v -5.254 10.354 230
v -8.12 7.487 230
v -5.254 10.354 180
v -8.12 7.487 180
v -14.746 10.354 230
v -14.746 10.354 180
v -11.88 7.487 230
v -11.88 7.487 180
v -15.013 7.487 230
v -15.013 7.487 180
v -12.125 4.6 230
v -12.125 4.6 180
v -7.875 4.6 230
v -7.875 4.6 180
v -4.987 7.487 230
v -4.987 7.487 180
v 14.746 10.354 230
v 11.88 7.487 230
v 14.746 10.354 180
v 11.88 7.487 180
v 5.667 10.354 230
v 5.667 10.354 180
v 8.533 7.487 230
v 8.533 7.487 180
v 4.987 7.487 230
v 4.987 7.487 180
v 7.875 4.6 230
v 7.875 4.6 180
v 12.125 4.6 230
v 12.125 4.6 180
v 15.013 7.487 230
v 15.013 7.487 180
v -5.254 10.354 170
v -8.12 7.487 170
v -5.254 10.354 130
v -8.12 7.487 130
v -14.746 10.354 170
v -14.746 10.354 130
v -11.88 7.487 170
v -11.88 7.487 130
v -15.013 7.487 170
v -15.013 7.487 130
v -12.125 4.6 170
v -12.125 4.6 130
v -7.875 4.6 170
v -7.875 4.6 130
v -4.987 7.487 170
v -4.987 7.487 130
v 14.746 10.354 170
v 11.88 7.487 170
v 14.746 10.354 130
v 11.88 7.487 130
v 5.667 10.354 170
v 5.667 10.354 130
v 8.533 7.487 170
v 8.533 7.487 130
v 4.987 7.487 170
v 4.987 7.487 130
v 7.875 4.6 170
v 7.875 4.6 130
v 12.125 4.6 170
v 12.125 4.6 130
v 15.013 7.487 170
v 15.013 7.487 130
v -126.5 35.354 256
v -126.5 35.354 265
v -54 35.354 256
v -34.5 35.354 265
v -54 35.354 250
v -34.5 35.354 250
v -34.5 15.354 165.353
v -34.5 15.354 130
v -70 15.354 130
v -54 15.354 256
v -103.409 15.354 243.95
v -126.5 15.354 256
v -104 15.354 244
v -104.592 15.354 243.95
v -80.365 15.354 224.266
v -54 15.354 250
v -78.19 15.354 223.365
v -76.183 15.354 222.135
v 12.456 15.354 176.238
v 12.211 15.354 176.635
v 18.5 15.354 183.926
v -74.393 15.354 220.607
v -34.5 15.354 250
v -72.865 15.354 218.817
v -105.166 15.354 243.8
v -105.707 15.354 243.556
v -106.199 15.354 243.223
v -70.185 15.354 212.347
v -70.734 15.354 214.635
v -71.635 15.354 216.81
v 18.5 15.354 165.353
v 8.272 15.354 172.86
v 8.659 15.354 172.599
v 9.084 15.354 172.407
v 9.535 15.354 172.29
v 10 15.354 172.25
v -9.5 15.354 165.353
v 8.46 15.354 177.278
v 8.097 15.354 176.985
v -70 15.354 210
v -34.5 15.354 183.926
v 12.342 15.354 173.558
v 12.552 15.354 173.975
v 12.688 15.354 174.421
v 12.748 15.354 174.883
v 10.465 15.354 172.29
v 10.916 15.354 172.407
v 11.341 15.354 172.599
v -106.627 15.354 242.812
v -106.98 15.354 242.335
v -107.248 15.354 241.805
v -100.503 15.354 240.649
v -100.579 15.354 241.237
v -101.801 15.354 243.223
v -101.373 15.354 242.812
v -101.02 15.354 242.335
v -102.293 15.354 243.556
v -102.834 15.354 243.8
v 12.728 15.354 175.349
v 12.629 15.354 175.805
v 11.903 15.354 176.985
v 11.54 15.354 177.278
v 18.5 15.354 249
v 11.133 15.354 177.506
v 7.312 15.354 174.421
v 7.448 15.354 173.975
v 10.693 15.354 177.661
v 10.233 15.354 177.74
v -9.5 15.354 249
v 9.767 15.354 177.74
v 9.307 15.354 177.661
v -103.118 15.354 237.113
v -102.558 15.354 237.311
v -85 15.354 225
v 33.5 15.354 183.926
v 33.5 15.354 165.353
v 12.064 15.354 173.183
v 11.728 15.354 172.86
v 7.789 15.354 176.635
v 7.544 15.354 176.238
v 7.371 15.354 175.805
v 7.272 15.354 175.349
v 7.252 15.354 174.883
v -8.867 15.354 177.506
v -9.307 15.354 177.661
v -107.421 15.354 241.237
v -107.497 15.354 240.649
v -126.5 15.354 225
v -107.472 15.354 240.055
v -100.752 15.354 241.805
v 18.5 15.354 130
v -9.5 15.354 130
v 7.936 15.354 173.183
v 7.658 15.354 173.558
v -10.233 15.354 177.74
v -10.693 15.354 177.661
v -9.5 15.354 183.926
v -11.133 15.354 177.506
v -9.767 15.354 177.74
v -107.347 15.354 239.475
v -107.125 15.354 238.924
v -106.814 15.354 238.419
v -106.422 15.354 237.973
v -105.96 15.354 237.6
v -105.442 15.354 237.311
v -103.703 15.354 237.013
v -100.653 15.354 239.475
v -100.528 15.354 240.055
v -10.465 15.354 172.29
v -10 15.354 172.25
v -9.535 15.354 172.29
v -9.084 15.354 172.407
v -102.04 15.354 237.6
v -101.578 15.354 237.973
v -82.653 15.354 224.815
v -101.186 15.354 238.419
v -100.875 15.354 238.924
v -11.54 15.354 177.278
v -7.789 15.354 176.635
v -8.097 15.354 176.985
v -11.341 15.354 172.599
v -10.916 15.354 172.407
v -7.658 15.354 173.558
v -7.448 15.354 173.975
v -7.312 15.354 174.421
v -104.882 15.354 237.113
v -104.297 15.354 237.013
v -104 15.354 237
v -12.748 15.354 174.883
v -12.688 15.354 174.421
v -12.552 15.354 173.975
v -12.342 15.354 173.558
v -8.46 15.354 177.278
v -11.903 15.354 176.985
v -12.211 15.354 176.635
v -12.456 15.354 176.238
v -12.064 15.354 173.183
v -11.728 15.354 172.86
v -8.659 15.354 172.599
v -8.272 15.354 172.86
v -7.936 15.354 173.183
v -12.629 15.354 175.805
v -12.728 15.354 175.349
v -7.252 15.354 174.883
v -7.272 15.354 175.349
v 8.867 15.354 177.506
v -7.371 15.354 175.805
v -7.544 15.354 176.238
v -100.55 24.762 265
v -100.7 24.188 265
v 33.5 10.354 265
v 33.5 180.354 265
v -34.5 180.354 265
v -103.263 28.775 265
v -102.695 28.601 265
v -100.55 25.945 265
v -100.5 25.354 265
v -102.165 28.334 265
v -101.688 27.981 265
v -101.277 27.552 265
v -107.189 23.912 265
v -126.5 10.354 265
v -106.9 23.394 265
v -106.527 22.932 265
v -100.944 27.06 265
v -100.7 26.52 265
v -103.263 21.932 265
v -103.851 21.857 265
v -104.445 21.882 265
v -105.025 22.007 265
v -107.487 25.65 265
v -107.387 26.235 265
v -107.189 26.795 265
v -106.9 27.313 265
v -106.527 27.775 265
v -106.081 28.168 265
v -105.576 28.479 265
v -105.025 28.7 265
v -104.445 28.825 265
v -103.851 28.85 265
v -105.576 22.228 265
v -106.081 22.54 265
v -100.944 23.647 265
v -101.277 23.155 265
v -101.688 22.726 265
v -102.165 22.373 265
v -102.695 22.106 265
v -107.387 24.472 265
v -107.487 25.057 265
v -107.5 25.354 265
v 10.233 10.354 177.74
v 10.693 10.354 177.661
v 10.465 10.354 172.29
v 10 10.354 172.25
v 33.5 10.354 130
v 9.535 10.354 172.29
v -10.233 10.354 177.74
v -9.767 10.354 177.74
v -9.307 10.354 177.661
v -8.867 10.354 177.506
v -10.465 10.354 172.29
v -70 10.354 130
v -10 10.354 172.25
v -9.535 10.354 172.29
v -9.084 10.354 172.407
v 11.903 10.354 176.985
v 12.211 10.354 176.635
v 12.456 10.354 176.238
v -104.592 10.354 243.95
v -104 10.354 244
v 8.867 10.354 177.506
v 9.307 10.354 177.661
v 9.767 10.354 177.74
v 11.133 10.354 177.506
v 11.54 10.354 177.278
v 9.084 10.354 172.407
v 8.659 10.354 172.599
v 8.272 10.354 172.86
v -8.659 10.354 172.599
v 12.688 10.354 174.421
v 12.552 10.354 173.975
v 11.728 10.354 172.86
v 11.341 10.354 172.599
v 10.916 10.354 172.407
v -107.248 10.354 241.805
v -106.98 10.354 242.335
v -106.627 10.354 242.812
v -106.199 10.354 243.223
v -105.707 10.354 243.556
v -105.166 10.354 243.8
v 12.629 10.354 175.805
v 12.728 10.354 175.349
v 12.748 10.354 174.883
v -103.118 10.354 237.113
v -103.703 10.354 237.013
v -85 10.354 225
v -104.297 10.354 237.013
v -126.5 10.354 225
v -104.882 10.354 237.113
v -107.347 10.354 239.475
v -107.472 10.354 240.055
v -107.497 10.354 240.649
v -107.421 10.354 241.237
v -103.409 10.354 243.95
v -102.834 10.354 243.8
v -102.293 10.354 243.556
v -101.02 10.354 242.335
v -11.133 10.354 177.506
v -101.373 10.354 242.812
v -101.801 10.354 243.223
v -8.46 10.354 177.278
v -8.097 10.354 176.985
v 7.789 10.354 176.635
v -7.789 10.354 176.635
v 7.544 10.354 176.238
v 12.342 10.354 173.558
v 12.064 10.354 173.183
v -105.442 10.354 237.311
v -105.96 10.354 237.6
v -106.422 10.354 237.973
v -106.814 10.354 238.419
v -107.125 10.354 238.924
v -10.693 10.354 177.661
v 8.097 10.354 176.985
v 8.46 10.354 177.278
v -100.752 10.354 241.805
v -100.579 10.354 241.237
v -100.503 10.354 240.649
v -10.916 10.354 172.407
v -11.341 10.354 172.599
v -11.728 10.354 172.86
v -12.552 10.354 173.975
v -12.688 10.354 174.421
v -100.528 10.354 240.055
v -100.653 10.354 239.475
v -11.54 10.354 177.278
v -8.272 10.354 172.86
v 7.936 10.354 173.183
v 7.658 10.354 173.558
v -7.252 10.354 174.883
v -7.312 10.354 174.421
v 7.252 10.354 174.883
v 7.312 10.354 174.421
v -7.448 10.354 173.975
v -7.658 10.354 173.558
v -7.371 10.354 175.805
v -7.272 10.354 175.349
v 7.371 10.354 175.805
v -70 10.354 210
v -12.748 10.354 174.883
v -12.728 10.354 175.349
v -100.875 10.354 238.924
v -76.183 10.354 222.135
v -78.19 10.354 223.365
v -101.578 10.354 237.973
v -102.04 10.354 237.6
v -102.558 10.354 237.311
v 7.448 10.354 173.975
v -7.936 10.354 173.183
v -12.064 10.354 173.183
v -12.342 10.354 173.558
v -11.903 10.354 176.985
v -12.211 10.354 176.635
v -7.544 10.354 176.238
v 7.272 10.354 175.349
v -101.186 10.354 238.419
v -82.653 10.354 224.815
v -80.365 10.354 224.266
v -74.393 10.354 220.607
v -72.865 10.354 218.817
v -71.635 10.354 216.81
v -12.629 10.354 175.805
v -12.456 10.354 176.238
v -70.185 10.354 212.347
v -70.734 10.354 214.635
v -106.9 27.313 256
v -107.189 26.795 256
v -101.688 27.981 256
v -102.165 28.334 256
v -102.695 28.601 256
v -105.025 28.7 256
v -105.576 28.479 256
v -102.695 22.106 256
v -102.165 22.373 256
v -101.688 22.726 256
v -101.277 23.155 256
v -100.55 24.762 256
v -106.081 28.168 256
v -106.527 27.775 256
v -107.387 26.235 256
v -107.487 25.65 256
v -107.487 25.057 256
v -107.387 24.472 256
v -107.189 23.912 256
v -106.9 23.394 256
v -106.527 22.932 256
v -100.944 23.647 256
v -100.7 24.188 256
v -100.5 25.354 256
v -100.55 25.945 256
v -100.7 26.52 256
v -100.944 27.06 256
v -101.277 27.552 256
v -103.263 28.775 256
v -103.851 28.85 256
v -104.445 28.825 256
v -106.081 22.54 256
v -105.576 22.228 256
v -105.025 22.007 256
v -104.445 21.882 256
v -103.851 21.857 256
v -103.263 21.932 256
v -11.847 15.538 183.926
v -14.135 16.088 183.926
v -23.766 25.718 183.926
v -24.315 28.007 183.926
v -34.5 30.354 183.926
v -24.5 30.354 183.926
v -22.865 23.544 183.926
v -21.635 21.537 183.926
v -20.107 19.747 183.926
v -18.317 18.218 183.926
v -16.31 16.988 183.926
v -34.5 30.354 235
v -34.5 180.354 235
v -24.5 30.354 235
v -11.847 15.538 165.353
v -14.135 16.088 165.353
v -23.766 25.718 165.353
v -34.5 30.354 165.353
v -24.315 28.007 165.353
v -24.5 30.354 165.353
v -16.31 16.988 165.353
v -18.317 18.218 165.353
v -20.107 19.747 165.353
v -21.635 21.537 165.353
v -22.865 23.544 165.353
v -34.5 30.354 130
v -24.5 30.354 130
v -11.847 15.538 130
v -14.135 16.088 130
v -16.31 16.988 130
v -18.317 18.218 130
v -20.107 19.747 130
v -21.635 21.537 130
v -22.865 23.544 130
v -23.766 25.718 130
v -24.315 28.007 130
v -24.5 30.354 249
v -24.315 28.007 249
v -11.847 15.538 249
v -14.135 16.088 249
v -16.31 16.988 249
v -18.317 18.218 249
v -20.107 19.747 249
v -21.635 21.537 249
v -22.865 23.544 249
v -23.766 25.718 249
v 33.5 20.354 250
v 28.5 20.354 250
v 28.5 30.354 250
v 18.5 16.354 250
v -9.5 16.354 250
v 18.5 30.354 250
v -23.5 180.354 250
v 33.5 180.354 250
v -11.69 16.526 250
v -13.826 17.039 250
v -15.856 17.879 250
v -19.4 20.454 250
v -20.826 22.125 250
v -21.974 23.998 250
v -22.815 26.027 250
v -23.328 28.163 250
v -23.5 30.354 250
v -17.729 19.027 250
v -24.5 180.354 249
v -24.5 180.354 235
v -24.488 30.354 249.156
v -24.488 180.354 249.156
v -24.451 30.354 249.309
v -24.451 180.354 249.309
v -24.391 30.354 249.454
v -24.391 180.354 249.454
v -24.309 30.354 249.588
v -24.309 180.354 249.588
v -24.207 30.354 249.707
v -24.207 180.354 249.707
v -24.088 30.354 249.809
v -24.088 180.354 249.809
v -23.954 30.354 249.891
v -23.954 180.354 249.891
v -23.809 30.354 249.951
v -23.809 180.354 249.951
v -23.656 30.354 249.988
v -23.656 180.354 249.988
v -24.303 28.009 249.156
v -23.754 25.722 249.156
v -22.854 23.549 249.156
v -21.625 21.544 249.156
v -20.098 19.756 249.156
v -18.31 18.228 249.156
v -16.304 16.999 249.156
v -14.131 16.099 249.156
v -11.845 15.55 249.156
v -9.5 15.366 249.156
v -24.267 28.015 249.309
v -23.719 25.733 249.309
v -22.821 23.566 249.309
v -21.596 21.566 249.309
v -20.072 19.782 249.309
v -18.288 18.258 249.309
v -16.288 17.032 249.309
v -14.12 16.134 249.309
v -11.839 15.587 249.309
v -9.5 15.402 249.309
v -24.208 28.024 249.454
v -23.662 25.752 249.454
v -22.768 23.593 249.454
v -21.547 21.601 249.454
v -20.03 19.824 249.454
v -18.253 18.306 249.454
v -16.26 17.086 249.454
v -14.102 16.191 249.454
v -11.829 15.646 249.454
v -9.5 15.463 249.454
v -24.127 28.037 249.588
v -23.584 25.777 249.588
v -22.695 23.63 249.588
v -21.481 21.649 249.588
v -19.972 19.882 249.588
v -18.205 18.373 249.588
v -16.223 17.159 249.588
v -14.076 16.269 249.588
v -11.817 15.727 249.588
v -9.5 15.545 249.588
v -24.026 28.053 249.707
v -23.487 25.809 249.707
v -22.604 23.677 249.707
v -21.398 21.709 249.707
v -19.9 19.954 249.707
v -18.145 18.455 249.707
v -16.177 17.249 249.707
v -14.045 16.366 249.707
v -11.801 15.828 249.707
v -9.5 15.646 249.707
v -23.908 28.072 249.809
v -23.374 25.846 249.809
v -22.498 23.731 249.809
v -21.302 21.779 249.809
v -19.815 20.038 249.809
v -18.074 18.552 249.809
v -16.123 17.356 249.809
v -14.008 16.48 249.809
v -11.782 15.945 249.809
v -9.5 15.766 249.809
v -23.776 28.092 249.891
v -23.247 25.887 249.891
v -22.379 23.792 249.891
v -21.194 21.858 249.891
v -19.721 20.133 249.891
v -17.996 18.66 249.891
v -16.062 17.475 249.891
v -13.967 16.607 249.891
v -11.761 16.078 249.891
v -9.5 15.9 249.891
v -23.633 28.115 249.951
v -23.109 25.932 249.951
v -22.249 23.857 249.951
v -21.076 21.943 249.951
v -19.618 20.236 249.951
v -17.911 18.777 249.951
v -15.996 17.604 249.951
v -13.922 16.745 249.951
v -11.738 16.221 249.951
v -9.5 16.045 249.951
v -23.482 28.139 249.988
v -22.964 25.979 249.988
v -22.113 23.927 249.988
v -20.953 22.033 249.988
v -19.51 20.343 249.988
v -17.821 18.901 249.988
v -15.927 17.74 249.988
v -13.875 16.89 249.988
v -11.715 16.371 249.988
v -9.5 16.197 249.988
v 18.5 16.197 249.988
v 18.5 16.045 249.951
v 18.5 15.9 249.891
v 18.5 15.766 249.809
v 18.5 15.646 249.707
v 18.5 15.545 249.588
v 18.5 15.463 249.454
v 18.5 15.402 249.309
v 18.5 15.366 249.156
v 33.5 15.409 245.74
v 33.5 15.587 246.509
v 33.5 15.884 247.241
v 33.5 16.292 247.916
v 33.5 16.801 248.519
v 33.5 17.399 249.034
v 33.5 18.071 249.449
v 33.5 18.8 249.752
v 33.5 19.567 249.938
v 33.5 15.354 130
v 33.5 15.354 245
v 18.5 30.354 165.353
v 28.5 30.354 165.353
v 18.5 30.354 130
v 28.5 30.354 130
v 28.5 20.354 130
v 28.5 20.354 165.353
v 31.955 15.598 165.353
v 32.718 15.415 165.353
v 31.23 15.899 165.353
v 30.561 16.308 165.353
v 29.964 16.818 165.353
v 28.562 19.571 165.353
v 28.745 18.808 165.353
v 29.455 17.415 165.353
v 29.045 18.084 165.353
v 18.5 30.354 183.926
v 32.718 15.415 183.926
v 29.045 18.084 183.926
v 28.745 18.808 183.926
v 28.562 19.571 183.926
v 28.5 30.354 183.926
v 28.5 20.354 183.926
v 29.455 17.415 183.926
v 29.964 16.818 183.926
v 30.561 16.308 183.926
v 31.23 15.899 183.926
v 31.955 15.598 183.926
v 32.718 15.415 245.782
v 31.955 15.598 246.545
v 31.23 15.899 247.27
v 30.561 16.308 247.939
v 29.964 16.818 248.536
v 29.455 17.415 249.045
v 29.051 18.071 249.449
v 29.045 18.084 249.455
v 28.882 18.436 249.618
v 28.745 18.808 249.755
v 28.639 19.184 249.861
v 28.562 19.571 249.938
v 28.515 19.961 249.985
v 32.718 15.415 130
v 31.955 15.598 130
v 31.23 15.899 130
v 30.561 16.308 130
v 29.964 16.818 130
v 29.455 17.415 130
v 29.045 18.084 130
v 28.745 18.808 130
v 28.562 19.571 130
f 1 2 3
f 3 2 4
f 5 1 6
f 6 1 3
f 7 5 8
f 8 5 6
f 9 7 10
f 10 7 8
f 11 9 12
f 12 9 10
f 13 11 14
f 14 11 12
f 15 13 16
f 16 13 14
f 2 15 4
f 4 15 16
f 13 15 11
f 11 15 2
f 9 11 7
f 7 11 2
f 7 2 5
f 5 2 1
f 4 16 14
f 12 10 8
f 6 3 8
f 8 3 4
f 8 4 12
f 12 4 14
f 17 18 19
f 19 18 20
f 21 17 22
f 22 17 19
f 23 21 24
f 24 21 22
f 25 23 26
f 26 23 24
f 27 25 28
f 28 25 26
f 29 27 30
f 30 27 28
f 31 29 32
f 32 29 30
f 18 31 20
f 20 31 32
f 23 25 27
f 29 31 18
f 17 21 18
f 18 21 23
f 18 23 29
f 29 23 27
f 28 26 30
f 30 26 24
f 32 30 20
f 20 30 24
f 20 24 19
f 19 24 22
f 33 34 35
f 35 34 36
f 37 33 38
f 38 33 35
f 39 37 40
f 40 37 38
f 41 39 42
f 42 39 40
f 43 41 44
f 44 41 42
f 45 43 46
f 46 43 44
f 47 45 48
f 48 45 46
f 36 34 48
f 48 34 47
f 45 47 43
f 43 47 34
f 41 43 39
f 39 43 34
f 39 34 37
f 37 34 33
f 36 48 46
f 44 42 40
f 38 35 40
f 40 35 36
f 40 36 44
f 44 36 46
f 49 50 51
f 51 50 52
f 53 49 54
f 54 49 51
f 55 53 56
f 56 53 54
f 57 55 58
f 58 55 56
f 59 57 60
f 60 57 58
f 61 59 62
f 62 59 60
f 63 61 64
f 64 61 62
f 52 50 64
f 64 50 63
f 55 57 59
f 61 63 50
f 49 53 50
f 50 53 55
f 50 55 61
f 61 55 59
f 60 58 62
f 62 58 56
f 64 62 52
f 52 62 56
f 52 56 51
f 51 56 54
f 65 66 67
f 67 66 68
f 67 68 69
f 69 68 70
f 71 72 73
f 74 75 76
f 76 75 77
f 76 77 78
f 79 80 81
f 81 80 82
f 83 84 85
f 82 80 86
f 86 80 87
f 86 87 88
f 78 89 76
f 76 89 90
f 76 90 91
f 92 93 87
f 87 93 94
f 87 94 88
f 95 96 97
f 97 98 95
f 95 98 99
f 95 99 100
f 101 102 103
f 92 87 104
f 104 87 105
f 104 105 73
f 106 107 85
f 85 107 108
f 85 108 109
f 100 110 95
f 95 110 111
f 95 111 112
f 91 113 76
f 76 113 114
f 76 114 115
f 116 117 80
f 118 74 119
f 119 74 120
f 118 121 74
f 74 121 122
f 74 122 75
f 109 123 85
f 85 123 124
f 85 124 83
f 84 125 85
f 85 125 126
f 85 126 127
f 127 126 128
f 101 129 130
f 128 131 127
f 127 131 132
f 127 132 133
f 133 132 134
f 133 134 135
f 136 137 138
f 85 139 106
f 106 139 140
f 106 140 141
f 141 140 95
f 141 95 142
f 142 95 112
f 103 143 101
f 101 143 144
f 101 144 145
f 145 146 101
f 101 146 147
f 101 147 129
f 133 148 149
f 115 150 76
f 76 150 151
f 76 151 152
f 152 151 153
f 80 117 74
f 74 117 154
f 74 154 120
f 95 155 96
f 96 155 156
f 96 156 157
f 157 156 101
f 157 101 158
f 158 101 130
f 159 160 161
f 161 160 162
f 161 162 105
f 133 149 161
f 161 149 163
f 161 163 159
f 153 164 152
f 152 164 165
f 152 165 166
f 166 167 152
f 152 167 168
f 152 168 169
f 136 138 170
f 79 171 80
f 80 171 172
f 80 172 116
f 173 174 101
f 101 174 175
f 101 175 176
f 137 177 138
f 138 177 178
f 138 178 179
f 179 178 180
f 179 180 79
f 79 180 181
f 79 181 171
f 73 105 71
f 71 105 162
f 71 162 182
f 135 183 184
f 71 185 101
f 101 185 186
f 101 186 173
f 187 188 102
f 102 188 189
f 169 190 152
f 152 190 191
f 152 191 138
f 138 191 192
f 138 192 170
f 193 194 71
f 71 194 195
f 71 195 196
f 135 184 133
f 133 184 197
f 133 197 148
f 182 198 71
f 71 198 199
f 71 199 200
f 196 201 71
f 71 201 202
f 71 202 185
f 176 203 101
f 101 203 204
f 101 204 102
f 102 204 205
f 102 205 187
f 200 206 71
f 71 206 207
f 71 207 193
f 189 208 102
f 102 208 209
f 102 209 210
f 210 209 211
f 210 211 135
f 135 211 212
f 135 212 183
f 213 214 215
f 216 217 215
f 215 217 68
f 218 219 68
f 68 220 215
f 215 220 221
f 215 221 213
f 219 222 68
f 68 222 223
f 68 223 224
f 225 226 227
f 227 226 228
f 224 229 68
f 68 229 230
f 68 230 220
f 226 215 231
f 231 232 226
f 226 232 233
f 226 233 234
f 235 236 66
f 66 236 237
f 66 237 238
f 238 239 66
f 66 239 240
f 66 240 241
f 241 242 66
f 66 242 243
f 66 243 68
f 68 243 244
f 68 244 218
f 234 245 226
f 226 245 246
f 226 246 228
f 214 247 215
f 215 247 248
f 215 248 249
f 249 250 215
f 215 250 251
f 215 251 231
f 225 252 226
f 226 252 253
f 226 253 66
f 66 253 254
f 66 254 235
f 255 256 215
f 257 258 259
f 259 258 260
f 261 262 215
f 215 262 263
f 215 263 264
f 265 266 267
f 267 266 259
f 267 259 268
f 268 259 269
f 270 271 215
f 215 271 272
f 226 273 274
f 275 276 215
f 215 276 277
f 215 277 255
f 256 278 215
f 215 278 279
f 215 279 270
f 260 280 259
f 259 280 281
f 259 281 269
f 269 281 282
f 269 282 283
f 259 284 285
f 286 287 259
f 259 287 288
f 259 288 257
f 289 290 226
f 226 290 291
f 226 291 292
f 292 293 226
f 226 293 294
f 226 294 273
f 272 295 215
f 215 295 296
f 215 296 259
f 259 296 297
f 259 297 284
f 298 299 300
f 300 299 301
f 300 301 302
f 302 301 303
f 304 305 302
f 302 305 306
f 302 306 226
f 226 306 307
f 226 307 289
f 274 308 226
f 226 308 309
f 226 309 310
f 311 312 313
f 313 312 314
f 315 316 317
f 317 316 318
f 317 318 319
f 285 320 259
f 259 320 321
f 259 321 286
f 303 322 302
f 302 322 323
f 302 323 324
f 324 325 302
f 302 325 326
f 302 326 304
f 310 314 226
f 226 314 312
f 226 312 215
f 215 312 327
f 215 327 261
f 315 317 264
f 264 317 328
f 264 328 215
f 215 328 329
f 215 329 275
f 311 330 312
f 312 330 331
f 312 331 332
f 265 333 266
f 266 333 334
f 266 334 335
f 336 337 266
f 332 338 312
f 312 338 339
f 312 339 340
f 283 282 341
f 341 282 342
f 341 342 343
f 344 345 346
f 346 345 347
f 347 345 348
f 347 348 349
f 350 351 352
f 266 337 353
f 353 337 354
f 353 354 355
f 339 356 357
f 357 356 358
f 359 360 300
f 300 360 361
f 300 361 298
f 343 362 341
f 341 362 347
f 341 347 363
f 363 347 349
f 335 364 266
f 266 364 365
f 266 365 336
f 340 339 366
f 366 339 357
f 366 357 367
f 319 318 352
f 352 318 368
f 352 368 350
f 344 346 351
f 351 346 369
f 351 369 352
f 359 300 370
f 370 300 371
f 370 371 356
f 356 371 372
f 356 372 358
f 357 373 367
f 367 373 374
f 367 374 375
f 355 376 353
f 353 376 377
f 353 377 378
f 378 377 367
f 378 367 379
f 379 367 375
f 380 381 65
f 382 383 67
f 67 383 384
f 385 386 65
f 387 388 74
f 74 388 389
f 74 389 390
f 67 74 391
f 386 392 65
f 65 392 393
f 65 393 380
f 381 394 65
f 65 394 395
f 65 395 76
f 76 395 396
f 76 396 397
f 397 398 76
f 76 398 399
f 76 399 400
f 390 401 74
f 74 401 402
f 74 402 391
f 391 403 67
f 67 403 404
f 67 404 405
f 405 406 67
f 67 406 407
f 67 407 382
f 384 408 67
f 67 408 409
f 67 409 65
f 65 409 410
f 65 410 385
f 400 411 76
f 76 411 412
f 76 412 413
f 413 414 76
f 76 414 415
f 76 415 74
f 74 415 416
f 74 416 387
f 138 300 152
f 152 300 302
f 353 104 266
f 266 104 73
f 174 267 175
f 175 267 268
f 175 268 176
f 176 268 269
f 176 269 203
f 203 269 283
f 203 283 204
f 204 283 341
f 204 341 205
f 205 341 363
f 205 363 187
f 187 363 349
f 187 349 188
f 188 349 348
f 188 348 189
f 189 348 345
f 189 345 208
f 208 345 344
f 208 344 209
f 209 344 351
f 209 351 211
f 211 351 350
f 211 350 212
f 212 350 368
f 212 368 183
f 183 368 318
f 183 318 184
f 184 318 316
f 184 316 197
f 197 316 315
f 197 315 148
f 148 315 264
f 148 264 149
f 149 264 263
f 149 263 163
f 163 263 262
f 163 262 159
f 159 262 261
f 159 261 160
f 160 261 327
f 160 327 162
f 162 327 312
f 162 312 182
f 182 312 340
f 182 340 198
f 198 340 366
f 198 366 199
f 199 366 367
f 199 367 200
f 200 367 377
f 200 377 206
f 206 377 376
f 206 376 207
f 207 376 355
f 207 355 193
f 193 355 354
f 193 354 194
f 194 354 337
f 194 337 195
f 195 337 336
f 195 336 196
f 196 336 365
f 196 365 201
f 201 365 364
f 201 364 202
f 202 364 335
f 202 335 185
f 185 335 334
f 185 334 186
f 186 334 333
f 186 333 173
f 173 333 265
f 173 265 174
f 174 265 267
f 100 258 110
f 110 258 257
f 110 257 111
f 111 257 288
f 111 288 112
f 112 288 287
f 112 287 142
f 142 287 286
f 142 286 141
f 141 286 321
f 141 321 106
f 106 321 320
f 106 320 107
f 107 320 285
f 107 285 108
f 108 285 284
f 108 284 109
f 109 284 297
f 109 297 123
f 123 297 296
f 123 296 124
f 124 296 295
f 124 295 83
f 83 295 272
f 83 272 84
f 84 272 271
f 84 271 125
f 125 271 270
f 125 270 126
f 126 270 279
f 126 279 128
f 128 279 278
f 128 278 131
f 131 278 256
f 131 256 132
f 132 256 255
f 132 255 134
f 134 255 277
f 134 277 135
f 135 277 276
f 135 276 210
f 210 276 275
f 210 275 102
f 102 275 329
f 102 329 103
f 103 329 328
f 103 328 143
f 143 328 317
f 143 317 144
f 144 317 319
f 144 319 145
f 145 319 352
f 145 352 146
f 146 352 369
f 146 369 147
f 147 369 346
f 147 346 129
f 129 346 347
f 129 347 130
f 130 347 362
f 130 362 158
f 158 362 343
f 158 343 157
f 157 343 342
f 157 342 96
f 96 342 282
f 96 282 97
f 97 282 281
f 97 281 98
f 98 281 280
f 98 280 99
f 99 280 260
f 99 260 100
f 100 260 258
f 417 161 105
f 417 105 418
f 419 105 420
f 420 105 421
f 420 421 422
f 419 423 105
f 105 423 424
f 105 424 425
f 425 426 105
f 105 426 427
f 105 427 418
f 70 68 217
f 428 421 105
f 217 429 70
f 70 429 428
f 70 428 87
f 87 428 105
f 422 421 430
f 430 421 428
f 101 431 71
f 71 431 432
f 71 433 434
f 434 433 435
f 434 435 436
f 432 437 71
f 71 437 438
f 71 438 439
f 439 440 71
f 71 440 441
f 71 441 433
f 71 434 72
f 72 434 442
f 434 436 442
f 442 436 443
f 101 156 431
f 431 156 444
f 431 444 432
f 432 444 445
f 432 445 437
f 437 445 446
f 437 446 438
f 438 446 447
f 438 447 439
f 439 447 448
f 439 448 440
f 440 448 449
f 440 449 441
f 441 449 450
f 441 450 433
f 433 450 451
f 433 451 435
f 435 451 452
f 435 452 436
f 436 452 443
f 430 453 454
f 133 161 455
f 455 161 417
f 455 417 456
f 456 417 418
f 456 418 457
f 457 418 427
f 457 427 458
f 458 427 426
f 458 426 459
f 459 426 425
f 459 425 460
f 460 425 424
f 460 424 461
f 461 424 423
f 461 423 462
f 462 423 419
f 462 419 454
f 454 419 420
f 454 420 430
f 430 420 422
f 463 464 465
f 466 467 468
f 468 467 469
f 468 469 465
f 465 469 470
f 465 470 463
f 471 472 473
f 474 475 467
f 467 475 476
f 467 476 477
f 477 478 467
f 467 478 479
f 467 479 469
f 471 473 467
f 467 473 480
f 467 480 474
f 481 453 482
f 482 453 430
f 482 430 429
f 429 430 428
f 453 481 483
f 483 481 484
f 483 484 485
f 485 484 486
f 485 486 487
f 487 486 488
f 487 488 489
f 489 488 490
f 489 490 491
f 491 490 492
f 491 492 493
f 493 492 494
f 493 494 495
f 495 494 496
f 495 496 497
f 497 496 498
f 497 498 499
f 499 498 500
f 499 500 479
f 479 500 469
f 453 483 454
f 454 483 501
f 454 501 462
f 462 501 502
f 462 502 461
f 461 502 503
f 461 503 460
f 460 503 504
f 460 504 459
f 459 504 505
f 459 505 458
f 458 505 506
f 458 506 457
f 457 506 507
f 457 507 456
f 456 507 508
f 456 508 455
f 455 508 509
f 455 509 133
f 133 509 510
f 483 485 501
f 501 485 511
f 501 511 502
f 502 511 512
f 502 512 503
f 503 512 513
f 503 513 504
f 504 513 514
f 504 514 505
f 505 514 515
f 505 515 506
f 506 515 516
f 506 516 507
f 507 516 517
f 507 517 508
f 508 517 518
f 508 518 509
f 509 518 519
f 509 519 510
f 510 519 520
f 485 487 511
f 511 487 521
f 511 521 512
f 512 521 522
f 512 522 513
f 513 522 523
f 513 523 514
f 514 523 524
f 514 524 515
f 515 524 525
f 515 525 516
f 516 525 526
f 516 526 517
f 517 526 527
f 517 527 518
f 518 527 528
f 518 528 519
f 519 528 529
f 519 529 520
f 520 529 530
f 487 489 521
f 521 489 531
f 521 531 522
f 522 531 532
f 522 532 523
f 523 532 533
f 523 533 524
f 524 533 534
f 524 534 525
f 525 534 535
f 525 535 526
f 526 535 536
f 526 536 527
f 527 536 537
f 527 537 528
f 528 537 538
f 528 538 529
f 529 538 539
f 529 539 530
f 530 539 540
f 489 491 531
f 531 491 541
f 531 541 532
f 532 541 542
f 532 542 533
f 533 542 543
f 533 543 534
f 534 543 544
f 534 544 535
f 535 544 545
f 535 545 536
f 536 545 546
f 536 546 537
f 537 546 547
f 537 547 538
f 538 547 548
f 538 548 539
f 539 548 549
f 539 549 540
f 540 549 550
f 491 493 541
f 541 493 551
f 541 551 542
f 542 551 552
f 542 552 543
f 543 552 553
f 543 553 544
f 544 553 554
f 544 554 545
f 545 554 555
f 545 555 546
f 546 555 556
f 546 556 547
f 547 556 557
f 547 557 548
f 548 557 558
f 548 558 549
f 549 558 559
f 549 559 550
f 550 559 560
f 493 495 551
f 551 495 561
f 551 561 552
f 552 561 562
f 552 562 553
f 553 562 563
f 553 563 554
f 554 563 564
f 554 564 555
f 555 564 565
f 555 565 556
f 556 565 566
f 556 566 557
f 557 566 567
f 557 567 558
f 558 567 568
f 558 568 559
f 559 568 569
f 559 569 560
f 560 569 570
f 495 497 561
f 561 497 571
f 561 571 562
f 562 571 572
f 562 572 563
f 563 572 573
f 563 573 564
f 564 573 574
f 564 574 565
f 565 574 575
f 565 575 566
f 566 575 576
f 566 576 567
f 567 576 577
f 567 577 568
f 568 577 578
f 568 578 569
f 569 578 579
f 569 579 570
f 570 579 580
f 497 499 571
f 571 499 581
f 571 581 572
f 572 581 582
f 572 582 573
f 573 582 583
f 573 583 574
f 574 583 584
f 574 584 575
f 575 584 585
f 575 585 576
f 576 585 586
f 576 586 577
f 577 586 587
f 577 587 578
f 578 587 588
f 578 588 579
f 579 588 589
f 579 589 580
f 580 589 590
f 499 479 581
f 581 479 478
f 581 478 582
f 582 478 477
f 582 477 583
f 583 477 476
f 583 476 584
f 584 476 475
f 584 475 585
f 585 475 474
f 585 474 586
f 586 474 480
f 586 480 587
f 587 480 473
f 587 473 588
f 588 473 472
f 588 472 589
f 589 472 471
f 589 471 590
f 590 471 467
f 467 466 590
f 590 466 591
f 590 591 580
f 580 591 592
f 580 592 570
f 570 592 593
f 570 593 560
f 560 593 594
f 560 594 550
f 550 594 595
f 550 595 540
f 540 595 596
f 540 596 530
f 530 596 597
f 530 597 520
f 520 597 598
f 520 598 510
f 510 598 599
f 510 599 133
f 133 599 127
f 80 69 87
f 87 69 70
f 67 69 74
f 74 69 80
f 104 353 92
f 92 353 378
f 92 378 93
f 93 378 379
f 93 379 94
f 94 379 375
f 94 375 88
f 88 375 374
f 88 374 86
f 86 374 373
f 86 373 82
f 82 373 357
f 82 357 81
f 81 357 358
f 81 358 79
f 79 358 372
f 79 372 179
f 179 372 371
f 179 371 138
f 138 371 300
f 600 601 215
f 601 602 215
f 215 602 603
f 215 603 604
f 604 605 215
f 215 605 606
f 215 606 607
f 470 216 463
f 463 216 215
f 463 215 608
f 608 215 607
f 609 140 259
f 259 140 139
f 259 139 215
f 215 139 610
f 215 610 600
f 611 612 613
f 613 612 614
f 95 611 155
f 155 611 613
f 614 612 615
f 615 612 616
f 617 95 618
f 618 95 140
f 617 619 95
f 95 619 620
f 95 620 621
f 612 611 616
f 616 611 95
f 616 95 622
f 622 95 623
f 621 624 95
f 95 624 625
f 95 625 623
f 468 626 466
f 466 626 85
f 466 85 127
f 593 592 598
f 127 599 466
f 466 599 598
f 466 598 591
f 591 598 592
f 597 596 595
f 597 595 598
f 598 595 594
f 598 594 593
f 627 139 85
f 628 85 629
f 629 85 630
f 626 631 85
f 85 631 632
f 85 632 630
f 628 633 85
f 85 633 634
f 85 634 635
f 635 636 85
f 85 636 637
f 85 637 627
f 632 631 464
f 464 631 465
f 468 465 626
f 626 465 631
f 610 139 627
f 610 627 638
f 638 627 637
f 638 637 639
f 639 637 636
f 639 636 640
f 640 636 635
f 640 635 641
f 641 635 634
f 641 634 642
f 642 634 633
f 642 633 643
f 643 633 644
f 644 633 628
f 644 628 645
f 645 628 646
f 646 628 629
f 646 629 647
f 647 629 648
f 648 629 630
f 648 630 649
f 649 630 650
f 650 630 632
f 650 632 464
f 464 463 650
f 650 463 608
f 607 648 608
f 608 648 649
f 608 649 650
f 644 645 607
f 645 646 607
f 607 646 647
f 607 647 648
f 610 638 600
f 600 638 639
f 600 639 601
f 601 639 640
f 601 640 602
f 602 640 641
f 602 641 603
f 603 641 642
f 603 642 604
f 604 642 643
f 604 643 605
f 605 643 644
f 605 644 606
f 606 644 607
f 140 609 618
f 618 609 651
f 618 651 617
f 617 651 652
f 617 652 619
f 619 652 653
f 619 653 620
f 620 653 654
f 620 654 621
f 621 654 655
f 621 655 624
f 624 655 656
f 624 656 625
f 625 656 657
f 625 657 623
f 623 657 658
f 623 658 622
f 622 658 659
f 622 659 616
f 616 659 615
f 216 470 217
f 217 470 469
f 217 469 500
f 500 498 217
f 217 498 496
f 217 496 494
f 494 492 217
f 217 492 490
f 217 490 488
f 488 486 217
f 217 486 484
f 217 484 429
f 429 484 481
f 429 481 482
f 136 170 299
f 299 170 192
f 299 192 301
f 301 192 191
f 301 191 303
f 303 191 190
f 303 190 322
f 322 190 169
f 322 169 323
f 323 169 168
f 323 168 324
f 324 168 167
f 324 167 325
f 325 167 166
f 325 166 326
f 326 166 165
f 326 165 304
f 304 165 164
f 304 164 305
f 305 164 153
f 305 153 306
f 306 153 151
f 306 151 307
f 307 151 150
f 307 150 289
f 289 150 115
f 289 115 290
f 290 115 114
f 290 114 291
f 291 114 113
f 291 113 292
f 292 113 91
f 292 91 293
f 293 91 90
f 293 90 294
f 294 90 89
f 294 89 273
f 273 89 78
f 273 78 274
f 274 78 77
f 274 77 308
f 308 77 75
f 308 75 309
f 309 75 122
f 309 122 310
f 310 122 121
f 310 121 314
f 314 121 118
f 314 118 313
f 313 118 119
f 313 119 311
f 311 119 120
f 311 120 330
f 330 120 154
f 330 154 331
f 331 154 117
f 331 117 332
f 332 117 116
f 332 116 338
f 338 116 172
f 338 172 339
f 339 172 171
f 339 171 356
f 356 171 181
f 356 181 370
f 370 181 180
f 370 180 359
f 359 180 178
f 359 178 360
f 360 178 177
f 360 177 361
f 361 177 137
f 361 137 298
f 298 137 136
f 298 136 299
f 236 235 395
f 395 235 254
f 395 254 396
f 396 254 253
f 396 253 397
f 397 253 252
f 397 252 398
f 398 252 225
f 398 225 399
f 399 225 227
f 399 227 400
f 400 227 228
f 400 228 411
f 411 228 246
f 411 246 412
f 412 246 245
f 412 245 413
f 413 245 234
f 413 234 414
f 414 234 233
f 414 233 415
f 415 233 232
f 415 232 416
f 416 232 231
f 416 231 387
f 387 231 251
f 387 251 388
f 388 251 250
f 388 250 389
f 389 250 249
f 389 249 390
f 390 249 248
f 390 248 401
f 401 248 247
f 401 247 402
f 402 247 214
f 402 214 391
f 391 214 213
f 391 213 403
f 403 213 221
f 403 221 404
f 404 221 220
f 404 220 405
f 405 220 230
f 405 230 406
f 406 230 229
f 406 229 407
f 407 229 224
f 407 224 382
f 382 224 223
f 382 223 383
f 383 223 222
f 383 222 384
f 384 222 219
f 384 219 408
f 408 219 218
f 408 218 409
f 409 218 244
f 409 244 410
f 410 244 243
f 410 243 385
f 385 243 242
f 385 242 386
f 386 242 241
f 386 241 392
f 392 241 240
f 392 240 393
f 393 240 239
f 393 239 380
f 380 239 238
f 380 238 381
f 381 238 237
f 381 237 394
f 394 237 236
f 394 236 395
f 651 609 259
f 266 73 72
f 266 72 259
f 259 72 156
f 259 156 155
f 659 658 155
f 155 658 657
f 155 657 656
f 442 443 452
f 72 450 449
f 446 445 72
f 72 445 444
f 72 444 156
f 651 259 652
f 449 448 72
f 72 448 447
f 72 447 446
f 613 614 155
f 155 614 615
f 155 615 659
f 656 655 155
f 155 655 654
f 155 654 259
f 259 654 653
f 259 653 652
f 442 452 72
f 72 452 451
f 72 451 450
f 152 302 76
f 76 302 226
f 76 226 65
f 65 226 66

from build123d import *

# Parameters (mm, degrees)
BOSS_EXTRUDE1_DEPTH      = 250
BOSS_EXTRUDE2_DEPTH      = 50
BOSS_EXTRUDE2_2_DEPTH    = 50
LPATTERN1_COUNT          = 4
LPATTERN1_PITCH          = 60
SKETCH2_R                = 2.75
CUT_EXTRUDE1_DEPTH       = 251.864711302
UPPER_ACRYLIC_SUPP_W     = 20
UPPER_ACRYLIC_SUPP_H     = 250
BOSS_EXTRUDE3_DEPTH      = 5
UPPER_ACRYLIC_SUPP_3_W   = 10
UPPER_ACRYLIC_SUPP_3_H   = 66.073604859
UPPER_ACRYLIC_SUPP_3_H_2 = 41.475217291
UPPER_ACRYLIC_SUPP_3_H_3 = 42.557179481
UPPER_ACRYLIC_SUPP_3_H_4 = 45.558340935
BOSS_EXTRUDE4_DEPTH      = 15
FILLET1_R                = 15
SKETCH4_W                = 60
SKETCH4_H                = 15
BOSS_EXTRUDE5_DEPTH      = 5
SKETCH4_3_W              = 60
SKETCH4_3_H              = 15
BOSS_EXTRUDE6_DEPTH      = 60
SKETCH5_W                = 10
SKETCH5_H                = 45
BOSS_EXTRUDE7_DEPTH      = 15
BOSS_EXTRUDE8_START      = 250
SKETCH5_3_W              = 10
SKETCH5_3_H              = 45
BOSS_EXTRUDE8_DEPTH      = 15
FILLET2_R                = 1
SKETCH6_W                = 6
SKETCH6_H                = 60
CUT_EXTRUDE2_DEPTH       = 6
BOSS_EXTRUDE9_DEPTH      = 30
SKETCH8_W                = 333.602701612
SKETCH8_H                = 59.031331047
CUT_EXTRUDE3_DEPTH       = 150
SKETCH9_W                = 6
SKETCH9_H                = 20
CLOTH_ESCAPE_GAP_DEPTH   = 20
SKETCH11_W               = 9
SKETCH11_H               = 20
BOSS_EXTRUDE11_DEPTH     = 100
CUT_EXTRUDE4_DEPTH       = 68
SKETCH13_W               = 40
SKETCH13_H               = 5
BOSS_EXTRUDE13_DEPTH     = 100
CUT_EXTRUDE5_DEPTH       = 100
FILLET3_R                = 15
BOSS_EXTRUDE14_START     = -5
BOSS_EXTRUDE14_DEPTH     = 25
CUT_EXTRUDE6_DEPTH       = 30
CUT_EXTRUDE6_DEPTH_BACK  = 10
SKETCH16_5_W             = 8.5
SKETCH16_5_H             = 41.475217291
SKETCH16_5_H_2           = 42.557179481
SKETCH16_5_W_2           = 1.5
SKETCH16_5_H_3           = 42.177819043
SKETCH16_5_H_4           = 20.831100018
SKETCH16_5_H_5           = 17.311395043
SKETCH16_5_H_6           = 18.573684265
SKETCH16_5_H_7           = 65.073604859
SKETCH16_6_W             = 8.5
SKETCH16_6_H             = 41.475217291
SKETCH16_6_H_2           = 42.557179481
SKETCH16_6_W_2           = 1.5
SKETCH16_6_H_3           = 42.177819043
SKETCH16_6_H_4           = 20.831100018
SKETCH16_6_H_5           = 17.311395043
SKETCH16_6_H_6           = 18.573684265
SKETCH16_6_H_7           = 65.073604859
BOSS_EXTRUDE15_DEPTH     = 5
BOSS_EXTRUDE16_DEPTH     = 20
SKETCH16_8_W             = 8.5
SKETCH16_8_H             = 41.475217291
SKETCH16_8_H_2           = 42.557179481
SKETCH16_8_W_2           = 1.5
SKETCH16_8_H_3           = 42.177819043
SKETCH16_8_H_4           = 65.073604859
BOSS_EXTRUDE17_DEPTH     = 15
BOSS_EXTRUDE18_START     = -5
BOSS_EXTRUDE18_DEPTH     = 25
FILLET4_R                = 5
BOSS_EXTRUDE21_START     = 145
BOSS_EXTRUDE21_DEPTH     = 170
SKETCH19_R               = 3.5
CUT_EXTRUDE7_DEPTH       = 10
CUT_EXTRUDE8_DEPTH       = 355
CUT_EXTRUDE8_DEPTH_BACK  = 10
SKETCH20_R               = 3.5
SKETCH21_W               = 15
SKETCH21_H               = 197.501027769
CUT_EXTRUDE9_DEPTH       = 130
SKETCH22_W               = 160
SKETCH22_H               = 135
SKETCH22_H_2             = 10
CUT_EXTRUDE11_DEPTH      = 270


with BuildPart() as part:
    # profile → Boss-Extrude1 (new body)
    with BuildSketch(Plane.XY):
        Polygon((-14.746446609, 10.353553391), (-5.253553391, 10.353553391), (5.667330529, 10.353553391), (14.746446609, 10.353553391), (20, 10.353553391), (20, 15.353553391), (-20, 15.353553391), (-20, 10.353553391), align=None)
    extrude(amount=BOSS_EXTRUDE1_DEPTH)

    # Sketch2 → Cut-Extrude1 (cut, through all)
    with BuildSketch(Plane.XZ.offset(-10.353553391)):
        with Locations(Location((-10, 175, 0), (0, 0, 270))):
            Circle(SKETCH2_R)
        with Locations(Location((10, 175, 0), (0, 0, 270))):
            Circle(SKETCH2_R)
        with Locations(Location((-10, 115, 0), (0, 0, 270))):
            Circle(SKETCH2_R)
        with Locations(Location((10, 115, 0), (0, 0, 270))):
            Circle(SKETCH2_R)
        with Locations(Location((-10, 55, 0), (0, 0, 270))):
            Circle(SKETCH2_R)
        with Locations(Location((10, 55, 0), (0, 0, 270))):
            Circle(SKETCH2_R)
    extrude(amount=-CUT_EXTRUDE1_DEPTH, mode=Mode.SUBTRACT)

    # upper_acrylic_supp → Boss-Extrude3 (add)
    with BuildSketch(Plane(origin=(0, 15.353553391, 0), x_dir=(1, 0, 0), z_dir=(0, 1, 0))):
        with Locations((-30, -125)):
            Rectangle(UPPER_ACRYLIC_SUPP_W, UPPER_ACRYLIC_SUPP_H)
    extrude(amount=-BOSS_EXTRUDE3_DEPTH)

    # upper_acrylic_supp<3> → Boss-Extrude4 (add)
    with BuildSketch(Plane(origin=(0, 15.353553391, 0), x_dir=(1, 0, 0), z_dir=(0, 1, 0))):
        with Locations((-29.5, -216.963197571)):
            Rectangle(UPPER_ACRYLIC_SUPP_3_W, UPPER_ACRYLIC_SUPP_3_H)
        with Locations((-29.5, -144.615102231)):
            Rectangle(UPPER_ACRYLIC_SUPP_3_W, UPPER_ACRYLIC_SUPP_3_H_2)
        with Locations((-29.5, -85.287508801)):
            Rectangle(UPPER_ACRYLIC_SUPP_3_W, UPPER_ACRYLIC_SUPP_3_H_3)
        with Locations((-29.5, -22.779170468)):
            Rectangle(UPPER_ACRYLIC_SUPP_3_W, UPPER_ACRYLIC_SUPP_3_H_4)
    extrude(amount=BOSS_EXTRUDE4_DEPTH)

    # Fillet1
    fillet1_edges = [part.edges().sort_by_distance(p)[0] for p in [
        (-24.5, 15.353553391, 22.779170467),
        (-24.5, 15.353553391, 85.287508801),
        (-24.5, 15.353553391, 144.615102231),
        (-24.5, 15.353553391, 216.963197571),
    ]]
    fillet(fillet1_edges, radius=FILLET1_R - 0.0001)  # a hair under: the kernel refuses the full size



with BuildPart() as body_2:
    # Sketch1<3> → Boss-Extrude2 (new body)
    with BuildSketch(Plane.XY):
        Polygon((-7.253553391, 8.353553391), (-8.119669914, 7.487436867), (-5.5, 7.487436867), (-4.987436867, 7.487436867), (-5.5, 6.974873734), (-7.874873734, 4.6), (-12.125126266, 4.6), (-14.5, 6.974873734), (-15.012563133, 7.487436867), (-14.5, 7.487436867), (-11.880330086, 7.487436867), (-12.746446609, 8.353553391), (-14.746446609, 10.353553391), (-5.253553391, 10.353553391), align=None)
    boss_extrude2 = extrude(amount=BOSS_EXTRUDE2_DEPTH)


with BuildPart() as body_3:
    # Sketch1<3> → Boss-Extrude2 2 (new body)
    with BuildSketch(Plane.XY):
        Polygon((12.746446609, 8.353553391), (11.880330086, 7.487436867), (14.5, 7.487436867), (15.012563133, 7.487436867), (14.5, 6.974873734), (12.125126266, 4.6), (7.874873734, 4.6), (5.5, 6.974873734), (4.987436867, 7.487436867), (5.5, 7.487436867), (8.533447053, 7.487436867), (7.667330529, 8.353553391), (5.667330529, 10.353553391), (14.746446609, 10.353553391), align=None)
    boss_extrude2_2 = extrude(amount=BOSS_EXTRUDE2_2_DEPTH)


with BuildPart() as lpattern1_1:
    # LPattern1: pattern copy
    add(boss_extrude2.moved(Location(Vector(0, 0, 1) * (1 * LPATTERN1_PITCH))))


with BuildPart() as lpattern1_2:
    # LPattern1: pattern copy
    add(boss_extrude2.moved(Location(Vector(0, 0, 1) * (2 * LPATTERN1_PITCH))))


with BuildPart() as lpattern1_3:
    # LPattern1: pattern copy
    add(boss_extrude2.moved(Location(Vector(0, 0, 1) * (3 * LPATTERN1_PITCH))))


with BuildPart() as lpattern1_4:
    # LPattern1: pattern copy
    add(boss_extrude2_2.moved(Location(Vector(0, 0, 1) * (1 * LPATTERN1_PITCH))))


with BuildPart() as lpattern1_5:
    # LPattern1: pattern copy
    add(boss_extrude2_2.moved(Location(Vector(0, 0, 1) * (2 * LPATTERN1_PITCH))))


with BuildPart() as lpattern1_6:
    # LPattern1: pattern copy
    add(boss_extrude2_2.moved(Location(Vector(0, 0, 1) * (3 * LPATTERN1_PITCH))))


with BuildPart() as part_1:
    add(part.part)

    add(body_2.part)  # Boss-Extrude5 merges body 2

    add(body_3.part)  # Boss-Extrude5 merges body 3
    # Sketch4 → Boss-Extrude5 (add, symmetric)
    with BuildSketch(Plane(origin=(0, 15.353553391, 0), x_dir=(1, 0, 0), z_dir=(0, 1, 0))):
        with Locations((-10, -257.5)):
            Rectangle(SKETCH4_W, SKETCH4_H)
        with Locations((-10, 7.5)):
            Rectangle(SKETCH4_W, SKETCH4_H)
    extrude(amount=BOSS_EXTRUDE5_DEPTH, both=True)

    # Sketch4<3> → Boss-Extrude6 (add)
    with BuildSketch(Plane(origin=(0, 15.353553391, 0), x_dir=(1, 0, 0), z_dir=(0, 1, 0))):
        with Locations((-10, -257.5)):
            Rectangle(SKETCH4_3_W, SKETCH4_3_H)
        with Locations((-10, 7.5)):
            Rectangle(SKETCH4_3_W, SKETCH4_3_H)
    extrude(amount=BOSS_EXTRUDE6_DEPTH)

    # Sketch5 → Boss-Extrude7 (add)
    with BuildSketch(Plane(origin=(0, 0, 250), x_dir=(-1, 0, 0), z_dir=(0, 0, -1))):
        with Locations((29.5, 52.853553391)):
            Rectangle(SKETCH5_W, SKETCH5_H)
    extrude(amount=BOSS_EXTRUDE7_DEPTH)

    # Sketch5<3> → Boss-Extrude8 (add)
    with BuildSketch(Plane(origin=(0, 0, 250), x_dir=(-1, 0, 0), z_dir=(0, 0, -1)).offset(BOSS_EXTRUDE8_START)):
        with Locations((29.5, 52.853553391)):
            Rectangle(SKETCH5_3_W, SKETCH5_3_H)
    extrude(amount=-BOSS_EXTRUDE8_DEPTH)

    # Fillet2
    fillet2_edges = [part_1.edges().sort_by_distance(p)[0] for p in [
        (-24.5, 52.853503391, 250),
        (-24.5, 52.853503391, 0),
        (5.24995, 15.353553391, 250),
        (-20.106631007, 19.746922384, 250),
        (-20.106631007, 19.746922384, 0),
        (5.24995, 15.353553391, 0),
    ]]
    fillet(fillet2_edges, radius=FILLET2_R)

    # Sketch6 → Cut-Extrude2 (cut)
    with BuildSketch(Plane.ZY.offset(40)):
        with Locations((253, 45.353553391)):
            Rectangle(SKETCH6_W, SKETCH6_H)
        with Locations((-3, 45.353553391)):
            Rectangle(SKETCH6_W, SKETCH6_H)
    extrude(amount=-CUT_EXTRUDE2_DEPTH, mode=Mode.SUBTRACT)

    # Sketch7 → Boss-Extrude9 (add)
    with BuildSketch(Plane.ZY.offset(40)):
        Polygon((265, 75.353553391), (256, 75.353553391), (256, 15.353553391), (-6, 15.353553391), (-6, 75.353553391), (-15, 75.353553391), (-15, 10.353553391), (265, 10.353553391), align=None)
    extrude(amount=BOSS_EXTRUDE9_DEPTH)

    # Sketch8 → Cut-Extrude3 (cut)
    with BuildSketch(Plane.ZY.offset(70)):
        with Locations((122.426839416, 64.869218915)):
            Rectangle(SKETCH8_W, SKETCH8_H)
    extrude(amount=-CUT_EXTRUDE3_DEPTH, mode=Mode.SUBTRACT)

    # Sketch9 → cloth_escape_gap (add)
    with BuildSketch(Plane.ZY.offset(34)):
        with Locations((253, 25.353553391)):
            Rectangle(SKETCH9_W, SKETCH9_H)
        with Locations((-3, 25.353553391)):
            Rectangle(SKETCH9_W, SKETCH9_H)
    extrude(amount=CLOTH_ESCAPE_GAP_DEPTH)

    # Sketch11 → Boss-Extrude11 (add)
    with BuildSketch(Plane.ZY.offset(70)):
        with Locations((-10.5, 25.353553391)):
            Rectangle(SKETCH11_W, SKETCH11_H)
        with Locations((260.5, 25.353553391)):
            Rectangle(SKETCH11_W, SKETCH11_H)
    extrude(amount=BOSS_EXTRUDE11_DEPTH)

    # Sketch12 → Cut-Extrude4 (cut)
    with BuildSketch(Plane.XZ.offset(-10.353553391)):
        Polygon((-170, 265), (-70, 265), (-170, 260.5), align=None)
        Polygon((-70, -15), (-170, -10.5), (-170, -15), align=None)
    extrude(amount=-CUT_EXTRUDE4_DEPTH, mode=Mode.SUBTRACT)

    # Sketch13 → Boss-Extrude13 (add)
    with BuildSketch(Plane.ZY.offset(70)):
        with Locations((5, 12.853553391)):
            Rectangle(SKETCH13_W, SKETCH13_H)
        with Locations((245, 12.853553391)):
            Rectangle(SKETCH13_W, SKETCH13_H)
    extrude(amount=BOSS_EXTRUDE13_DEPTH)

    # Sketch14 → Cut-Extrude5 (cut)
    with BuildSketch(Plane(origin=(0, 15.353553391, 0), x_dir=(1, 0, 0), z_dir=(0, 1, 0))):
        Polygon((-70, -265), (-170, -260.5), (-170, -265), align=None)
        Polygon((-170, 15), (-170, 10.5), (-70, 15), align=None)
    extrude(amount=-CUT_EXTRUDE5_DEPTH, mode=Mode.SUBTRACT)

    # Fillet3
    fillet3_edges = [part_1.edges().sort_by_distance(p)[0] for p in [
        (-70, 12.853553391, 25),
        (-70, 12.853553391, 225),
    ]]
    fillet(fillet3_edges, radius=FILLET3_R)

    # Sketch16 → Boss-Extrude14 (add)
    with BuildSketch(Plane(origin=(0, 15.353553391, 0), x_dir=(1, 0, 0), z_dir=(0, 1, 0)).offset(BOSS_EXTRUDE14_START)):
        Polygon((28.5, 0), (33.5, 0), (33.5, 15), (18.5, 15), (18.5, 0), align=None)
        Polygon((18.5, -250), (18.5, -265), (33.5, -265), (33.5, -250), (28.5, -250), align=None)
    extrude(amount=BOSS_EXTRUDE14_DEPTH)

    # Sketch16<5> → Cut-Extrude6 (cut, two sides: drawn at the far end of the back side and taken through both)
    with BuildSketch(Plane(origin=(0, 15.353553391, 0), x_dir=(1, 0, 0), z_dir=(0, 1, 0)).offset(-CUT_EXTRUDE6_DEPTH_BACK)):
        Polygon((18.5, -250), (18.5, -265), (33.5, -265), (33.5, -250), (28.5, -250), align=None)
        Polygon((28.5, -250), (33.5, -250), (33.5, 0), (28.5, 0), (28.5, -43.177819043), (20, -43.177819043), (20, -64.008919061), (28.5, -64.008919061), (28.5, -106.566098542), (20, -106.566098542), (20, -123.877493585), (28.5, -123.877493585), (28.5, -165.352710876), (20, -165.352710876), (20, -183.926395141), (28.5, -183.926395141), align=None)
        with Locations((24.25, -144.615102231)):
            Rectangle(SKETCH16_5_W, SKETCH16_5_H)
        with Locations((24.25, -85.287508801)):
            Rectangle(SKETCH16_5_W, SKETCH16_5_H_2)
        Polygon((28.5, -43.177819043), (28.5, 0), (18.5, 0), (18.5, -1), (20, -1), (20, -43.177819043), align=None)
        Polygon((28.5, 0), (33.5, 0), (33.5, 15), (18.5, 15), (18.5, 0), align=None)
        with Locations((19.25, -22.088909521)):
            Rectangle(SKETCH16_5_W_2, SKETCH16_5_H_3)
        with Locations((19.25, -53.593369052)):
            Rectangle(SKETCH16_5_W_2, SKETCH16_5_H_4)
        with Locations((19.25, -85.287508801)):
            Rectangle(SKETCH16_5_W_2, SKETCH16_5_H_2)
        with Locations((19.25, -115.221796064)):
            Rectangle(SKETCH16_5_W_2, SKETCH16_5_H_5)
        with Locations((19.25, -144.615102231)):
            Rectangle(SKETCH16_5_W_2, SKETCH16_5_H)
        with Locations((19.25, -174.639553009)):
            Rectangle(SKETCH16_5_W_2, SKETCH16_5_H_6)
        with Locations((19.25, -216.463197571)):
            Rectangle(SKETCH16_5_W_2, SKETCH16_5_H_7)
        Polygon((18.5, -249), (18.5, -250), (28.5, -250), (28.5, -183.926395141), (20, -183.926395141), (20, -249), align=None)
    extrude(amount=CUT_EXTRUDE6_DEPTH + CUT_EXTRUDE6_DEPTH_BACK, mode=Mode.SUBTRACT)

    # Sketch16<6> → Boss-Extrude15 (add)
    with BuildSketch(Plane(origin=(0, 15.353553391, 0), x_dir=(1, 0, 0), z_dir=(0, 1, 0))):
        Polygon((28.5, -250), (33.5, -250), (33.5, 0), (28.5, 0), (28.5, -43.177819043), (20, -43.177819043), (20, -64.008919061), (28.5, -64.008919061), (28.5, -106.566098542), (20, -106.566098542), (20, -123.877493585), (28.5, -123.877493585), (28.5, -165.352710876), (20, -165.352710876), (20, -183.926395141), (28.5, -183.926395141), align=None)
        Polygon((18.5, -249), (18.5, -250), (28.5, -250), (28.5, -183.926395141), (20, -183.926395141), (20, -249), align=None)
        Polygon((18.5, -250), (18.5, -265), (33.5, -265), (33.5, -250), (28.5, -250), align=None)
        with Locations((24.25, -144.615102231)):
            Rectangle(SKETCH16_6_W, SKETCH16_6_H)
        with Locations((24.25, -85.287508801)):
            Rectangle(SKETCH16_6_W, SKETCH16_6_H_2)
        Polygon((28.5, -43.177819043), (28.5, 0), (18.5, 0), (18.5, -1), (20, -1), (20, -43.177819043), align=None)
        Polygon((28.5, 0), (33.5, 0), (33.5, 15), (18.5, 15), (18.5, 0), align=None)
        with Locations((19.25, -22.088909521)):
            Rectangle(SKETCH16_6_W_2, SKETCH16_6_H_3)
        with Locations((19.25, -53.593369052)):
            Rectangle(SKETCH16_6_W_2, SKETCH16_6_H_4)
        with Locations((19.25, -85.287508801)):
            Rectangle(SKETCH16_6_W_2, SKETCH16_6_H_2)
        with Locations((19.25, -115.221796064)):
            Rectangle(SKETCH16_6_W_2, SKETCH16_6_H_5)
        with Locations((19.25, -144.615102231)):
            Rectangle(SKETCH16_6_W_2, SKETCH16_6_H)
        with Locations((19.25, -174.639553009)):
            Rectangle(SKETCH16_6_W_2, SKETCH16_6_H_6)
        with Locations((19.25, -216.463197571)):
            Rectangle(SKETCH16_6_W_2, SKETCH16_6_H_7)
    extrude(amount=-BOSS_EXTRUDE15_DEPTH)

    # Sketch16<7> → Boss-Extrude16 (add)
    with BuildSketch(Plane(origin=(0, 15.353553391, 0), x_dir=(1, 0, 0), z_dir=(0, 1, 0))):
        Polygon((18.5, -250), (18.5, -265), (33.5, -265), (33.5, -250), (28.5, -250), align=None)
        Polygon((28.5, 0), (33.5, 0), (33.5, 15), (18.5, 15), (18.5, 0), align=None)
    extrude(amount=BOSS_EXTRUDE16_DEPTH)

    # Sketch16<8> → Boss-Extrude17 (add)
    with BuildSketch(Plane(origin=(0, 15.353553391, 0), x_dir=(1, 0, 0), z_dir=(0, 1, 0))):
        Polygon((18.5, -249), (18.5, -250), (28.5, -250), (28.5, -183.926395141), (20, -183.926395141), (20, -249), align=None)
        with Locations((24.25, -144.615102231)):
            Rectangle(SKETCH16_8_W, SKETCH16_8_H)
        with Locations((24.25, -85.287508801)):
            Rectangle(SKETCH16_8_W, SKETCH16_8_H_2)
        Polygon((28.5, -43.177819043), (28.5, 0), (18.5, 0), (18.5, -1), (20, -1), (20, -43.177819043), align=None)
        with Locations((19.25, -22.088909521)):
            Rectangle(SKETCH16_8_W_2, SKETCH16_8_H_3)
        with Locations((19.25, -85.287508801)):
            Rectangle(SKETCH16_8_W_2, SKETCH16_8_H_2)
        with Locations((19.25, -144.615102231)):
            Rectangle(SKETCH16_8_W_2, SKETCH16_8_H)
        with Locations((19.25, -216.463197571)):
            Rectangle(SKETCH16_8_W_2, SKETCH16_8_H_4)
    extrude(amount=BOSS_EXTRUDE17_DEPTH)

    # Sketch14<2> → Boss-Extrude18 (add)
    with BuildSketch(Plane(origin=(0, 15.353553391, 0), x_dir=(1, 0, 0), z_dir=(0, 1, 0)).offset(BOSS_EXTRUDE18_START)):
        Polygon((-70, -265), (-170, -260.5), (-170, -265), align=None)
        Polygon((-170, 15), (-170, 10.5), (-70, 15), align=None)
    extrude(amount=BOSS_EXTRUDE18_DEPTH)

    # Fillet4
    fillet4_edges = [part_1.edges().sort_by_distance(p)[0] for p in [
        (31, 15.353553391, 0),
        (28.5, 15.353553391, 21.588909521),
        (28.5, 15.353553391, 85.287508801),
        (28.5, 15.353553391, 144.615102231),
        (31, 15.353553391, 250),
        (28.5, 15.353553391, 216.963197571),
    ]]
    fillet(fillet4_edges, radius=FILLET4_R - 0.0001)  # a hair under: the kernel refuses the full size

    # Sketch18 → Boss-Extrude21 (add)
    with BuildSketch(Plane(origin=(0, 35.353553391, 0), x_dir=(1, 0, 0), z_dir=(0, 1, 0)).offset(BOSS_EXTRUDE21_START)):
        with BuildLine():
            Line((-34.5, -250), (-34.5, -265))
            Line((-34.5, -265), (33.5, -265))
            Line((33.5, -265), (33.5, -250))
            Line((33.5, -250), (-23.5, -250))
            ThreePointArc((-23.5, -250), (-24.207106781, -249.707106781), (-24.5, -249))
            Line((-24.5, -249), (-24.5, -235))
            Line((-24.5, -235), (-34.5, -235))
            Line((-34.5, -235), (-34.5, -250))
        make_face()
        with BuildLine():
            Line((-34.5, 15), (-34.5, 0))
            Line((-34.5, 0), (-34.5, -15))
            Line((-34.5, -15), (-24.5, -15))
            Line((-24.5, -15), (-24.5, -1))
            ThreePointArc((-24.5, -1), (-24.207106781, -0.292893219), (-23.5, 0))
            Line((-23.5, 0), (33.5, 0))
            Line((33.5, 0), (33.5, 15))
            Line((33.5, 15), (-34.5, 15))
        make_face()
    extrude(amount=-BOSS_EXTRUDE21_DEPTH)

    # Sketch19 → Cut-Extrude7 (cut)
    with BuildSketch(Plane(origin=(0, 15.353553391, 0), x_dir=(1, 0, 0), z_dir=(0, 1, 0))):
        with Locations(Location((-154, -9.5, 0), (0, 0, 270))):
            Circle(SKETCH19_R)
        with Locations(Location((-104, -9.5, 0), (0, 0, 270))):
            Circle(SKETCH19_R)
        with Locations(Location((-104, -240.5, 0), (0, 0, 270))):
            Circle(SKETCH19_R)
        with Locations(Location((-154, -240.5, 0), (0, 0, 270))):
            Circle(SKETCH19_R)
    extrude(amount=-CUT_EXTRUDE7_DEPTH, mode=Mode.SUBTRACT)

    # Sketch20 → Cut-Extrude8 (cut, two sides: drawn at the far end of the back side and taken through both)
    with BuildSketch(Plane(origin=(0, 0, 256), x_dir=(-1, 0, 0), z_dir=(0, 0, -1)).offset(-CUT_EXTRUDE8_DEPTH_BACK)):
        with Locations(Location((104, 25.353553391, 0), (0, 0, 180))):
            Circle(SKETCH20_R)
        with Locations(Location((154, 25.353553391, 0), (0, 0, 180))):
            Circle(SKETCH20_R)
    extrude(amount=CUT_EXTRUDE8_DEPTH + CUT_EXTRUDE8_DEPTH_BACK, mode=Mode.SUBTRACT)

    # Sketch21 → Cut-Extrude9 (cut)
    with BuildSketch(Plane.XY):
        with Locations((6, 114.104067276)):
            Rectangle(SKETCH21_W, SKETCH21_H)
    extrude(amount=-CUT_EXTRUDE9_DEPTH, mode=Mode.SUBTRACT)


with BuildPart() as cut_extrude11_tool:
    # Sketch22 → Cut-Extrude11 (new body)
    with BuildSketch(Plane(origin=(0, 0, 0), x_dir=(1, 0, 0), z_dir=(0, 1, 0))):
        with Locations((-46.5, -52.5)):
            Rectangle(SKETCH22_W, SKETCH22_H)
        with Locations((-46.5, -125)):
            Rectangle(SKETCH22_W, SKETCH22_H_2)
        Polygon((-126.5, 15), (-186.5, 15), (-186.5, -265), (-126.5, -265), (-126.5, -130), (-126.5, -120), align=None)
    extrude(amount=CUT_EXTRUDE11_DEPTH)


with BuildPart() as part_2:
    add(part_1.part)

    # Cut-Extrude11: cut by cut_extrude11_tool
    add(cut_extrude11_tool.part, mode=Mode.SUBTRACT)


with BuildPart() as lpattern1_1_1:
    add(lpattern1_1.part)

    # Cut-Extrude11: cut by cut_extrude11_tool
    add(cut_extrude11_tool.part, mode=Mode.SUBTRACT)


with BuildPart() as lpattern1_2_1:
    add(lpattern1_2.part)

    # Cut-Extrude11: cut by cut_extrude11_tool
    add(cut_extrude11_tool.part, mode=Mode.SUBTRACT)


with BuildPart() as lpattern1_4_1:
    add(lpattern1_4.part)

    # Cut-Extrude11: cut by cut_extrude11_tool
    add(cut_extrude11_tool.part, mode=Mode.SUBTRACT)


with BuildPart() as lpattern1_5_1:
    add(lpattern1_5.part)

    # Cut-Extrude11: cut by cut_extrude11_tool
    add(cut_extrude11_tool.part, mode=Mode.SUBTRACT)


solid = Compound([lpattern1_3.part, lpattern1_6.part, part_2.part, lpattern1_2_1.part, lpattern1_5_1.part])
